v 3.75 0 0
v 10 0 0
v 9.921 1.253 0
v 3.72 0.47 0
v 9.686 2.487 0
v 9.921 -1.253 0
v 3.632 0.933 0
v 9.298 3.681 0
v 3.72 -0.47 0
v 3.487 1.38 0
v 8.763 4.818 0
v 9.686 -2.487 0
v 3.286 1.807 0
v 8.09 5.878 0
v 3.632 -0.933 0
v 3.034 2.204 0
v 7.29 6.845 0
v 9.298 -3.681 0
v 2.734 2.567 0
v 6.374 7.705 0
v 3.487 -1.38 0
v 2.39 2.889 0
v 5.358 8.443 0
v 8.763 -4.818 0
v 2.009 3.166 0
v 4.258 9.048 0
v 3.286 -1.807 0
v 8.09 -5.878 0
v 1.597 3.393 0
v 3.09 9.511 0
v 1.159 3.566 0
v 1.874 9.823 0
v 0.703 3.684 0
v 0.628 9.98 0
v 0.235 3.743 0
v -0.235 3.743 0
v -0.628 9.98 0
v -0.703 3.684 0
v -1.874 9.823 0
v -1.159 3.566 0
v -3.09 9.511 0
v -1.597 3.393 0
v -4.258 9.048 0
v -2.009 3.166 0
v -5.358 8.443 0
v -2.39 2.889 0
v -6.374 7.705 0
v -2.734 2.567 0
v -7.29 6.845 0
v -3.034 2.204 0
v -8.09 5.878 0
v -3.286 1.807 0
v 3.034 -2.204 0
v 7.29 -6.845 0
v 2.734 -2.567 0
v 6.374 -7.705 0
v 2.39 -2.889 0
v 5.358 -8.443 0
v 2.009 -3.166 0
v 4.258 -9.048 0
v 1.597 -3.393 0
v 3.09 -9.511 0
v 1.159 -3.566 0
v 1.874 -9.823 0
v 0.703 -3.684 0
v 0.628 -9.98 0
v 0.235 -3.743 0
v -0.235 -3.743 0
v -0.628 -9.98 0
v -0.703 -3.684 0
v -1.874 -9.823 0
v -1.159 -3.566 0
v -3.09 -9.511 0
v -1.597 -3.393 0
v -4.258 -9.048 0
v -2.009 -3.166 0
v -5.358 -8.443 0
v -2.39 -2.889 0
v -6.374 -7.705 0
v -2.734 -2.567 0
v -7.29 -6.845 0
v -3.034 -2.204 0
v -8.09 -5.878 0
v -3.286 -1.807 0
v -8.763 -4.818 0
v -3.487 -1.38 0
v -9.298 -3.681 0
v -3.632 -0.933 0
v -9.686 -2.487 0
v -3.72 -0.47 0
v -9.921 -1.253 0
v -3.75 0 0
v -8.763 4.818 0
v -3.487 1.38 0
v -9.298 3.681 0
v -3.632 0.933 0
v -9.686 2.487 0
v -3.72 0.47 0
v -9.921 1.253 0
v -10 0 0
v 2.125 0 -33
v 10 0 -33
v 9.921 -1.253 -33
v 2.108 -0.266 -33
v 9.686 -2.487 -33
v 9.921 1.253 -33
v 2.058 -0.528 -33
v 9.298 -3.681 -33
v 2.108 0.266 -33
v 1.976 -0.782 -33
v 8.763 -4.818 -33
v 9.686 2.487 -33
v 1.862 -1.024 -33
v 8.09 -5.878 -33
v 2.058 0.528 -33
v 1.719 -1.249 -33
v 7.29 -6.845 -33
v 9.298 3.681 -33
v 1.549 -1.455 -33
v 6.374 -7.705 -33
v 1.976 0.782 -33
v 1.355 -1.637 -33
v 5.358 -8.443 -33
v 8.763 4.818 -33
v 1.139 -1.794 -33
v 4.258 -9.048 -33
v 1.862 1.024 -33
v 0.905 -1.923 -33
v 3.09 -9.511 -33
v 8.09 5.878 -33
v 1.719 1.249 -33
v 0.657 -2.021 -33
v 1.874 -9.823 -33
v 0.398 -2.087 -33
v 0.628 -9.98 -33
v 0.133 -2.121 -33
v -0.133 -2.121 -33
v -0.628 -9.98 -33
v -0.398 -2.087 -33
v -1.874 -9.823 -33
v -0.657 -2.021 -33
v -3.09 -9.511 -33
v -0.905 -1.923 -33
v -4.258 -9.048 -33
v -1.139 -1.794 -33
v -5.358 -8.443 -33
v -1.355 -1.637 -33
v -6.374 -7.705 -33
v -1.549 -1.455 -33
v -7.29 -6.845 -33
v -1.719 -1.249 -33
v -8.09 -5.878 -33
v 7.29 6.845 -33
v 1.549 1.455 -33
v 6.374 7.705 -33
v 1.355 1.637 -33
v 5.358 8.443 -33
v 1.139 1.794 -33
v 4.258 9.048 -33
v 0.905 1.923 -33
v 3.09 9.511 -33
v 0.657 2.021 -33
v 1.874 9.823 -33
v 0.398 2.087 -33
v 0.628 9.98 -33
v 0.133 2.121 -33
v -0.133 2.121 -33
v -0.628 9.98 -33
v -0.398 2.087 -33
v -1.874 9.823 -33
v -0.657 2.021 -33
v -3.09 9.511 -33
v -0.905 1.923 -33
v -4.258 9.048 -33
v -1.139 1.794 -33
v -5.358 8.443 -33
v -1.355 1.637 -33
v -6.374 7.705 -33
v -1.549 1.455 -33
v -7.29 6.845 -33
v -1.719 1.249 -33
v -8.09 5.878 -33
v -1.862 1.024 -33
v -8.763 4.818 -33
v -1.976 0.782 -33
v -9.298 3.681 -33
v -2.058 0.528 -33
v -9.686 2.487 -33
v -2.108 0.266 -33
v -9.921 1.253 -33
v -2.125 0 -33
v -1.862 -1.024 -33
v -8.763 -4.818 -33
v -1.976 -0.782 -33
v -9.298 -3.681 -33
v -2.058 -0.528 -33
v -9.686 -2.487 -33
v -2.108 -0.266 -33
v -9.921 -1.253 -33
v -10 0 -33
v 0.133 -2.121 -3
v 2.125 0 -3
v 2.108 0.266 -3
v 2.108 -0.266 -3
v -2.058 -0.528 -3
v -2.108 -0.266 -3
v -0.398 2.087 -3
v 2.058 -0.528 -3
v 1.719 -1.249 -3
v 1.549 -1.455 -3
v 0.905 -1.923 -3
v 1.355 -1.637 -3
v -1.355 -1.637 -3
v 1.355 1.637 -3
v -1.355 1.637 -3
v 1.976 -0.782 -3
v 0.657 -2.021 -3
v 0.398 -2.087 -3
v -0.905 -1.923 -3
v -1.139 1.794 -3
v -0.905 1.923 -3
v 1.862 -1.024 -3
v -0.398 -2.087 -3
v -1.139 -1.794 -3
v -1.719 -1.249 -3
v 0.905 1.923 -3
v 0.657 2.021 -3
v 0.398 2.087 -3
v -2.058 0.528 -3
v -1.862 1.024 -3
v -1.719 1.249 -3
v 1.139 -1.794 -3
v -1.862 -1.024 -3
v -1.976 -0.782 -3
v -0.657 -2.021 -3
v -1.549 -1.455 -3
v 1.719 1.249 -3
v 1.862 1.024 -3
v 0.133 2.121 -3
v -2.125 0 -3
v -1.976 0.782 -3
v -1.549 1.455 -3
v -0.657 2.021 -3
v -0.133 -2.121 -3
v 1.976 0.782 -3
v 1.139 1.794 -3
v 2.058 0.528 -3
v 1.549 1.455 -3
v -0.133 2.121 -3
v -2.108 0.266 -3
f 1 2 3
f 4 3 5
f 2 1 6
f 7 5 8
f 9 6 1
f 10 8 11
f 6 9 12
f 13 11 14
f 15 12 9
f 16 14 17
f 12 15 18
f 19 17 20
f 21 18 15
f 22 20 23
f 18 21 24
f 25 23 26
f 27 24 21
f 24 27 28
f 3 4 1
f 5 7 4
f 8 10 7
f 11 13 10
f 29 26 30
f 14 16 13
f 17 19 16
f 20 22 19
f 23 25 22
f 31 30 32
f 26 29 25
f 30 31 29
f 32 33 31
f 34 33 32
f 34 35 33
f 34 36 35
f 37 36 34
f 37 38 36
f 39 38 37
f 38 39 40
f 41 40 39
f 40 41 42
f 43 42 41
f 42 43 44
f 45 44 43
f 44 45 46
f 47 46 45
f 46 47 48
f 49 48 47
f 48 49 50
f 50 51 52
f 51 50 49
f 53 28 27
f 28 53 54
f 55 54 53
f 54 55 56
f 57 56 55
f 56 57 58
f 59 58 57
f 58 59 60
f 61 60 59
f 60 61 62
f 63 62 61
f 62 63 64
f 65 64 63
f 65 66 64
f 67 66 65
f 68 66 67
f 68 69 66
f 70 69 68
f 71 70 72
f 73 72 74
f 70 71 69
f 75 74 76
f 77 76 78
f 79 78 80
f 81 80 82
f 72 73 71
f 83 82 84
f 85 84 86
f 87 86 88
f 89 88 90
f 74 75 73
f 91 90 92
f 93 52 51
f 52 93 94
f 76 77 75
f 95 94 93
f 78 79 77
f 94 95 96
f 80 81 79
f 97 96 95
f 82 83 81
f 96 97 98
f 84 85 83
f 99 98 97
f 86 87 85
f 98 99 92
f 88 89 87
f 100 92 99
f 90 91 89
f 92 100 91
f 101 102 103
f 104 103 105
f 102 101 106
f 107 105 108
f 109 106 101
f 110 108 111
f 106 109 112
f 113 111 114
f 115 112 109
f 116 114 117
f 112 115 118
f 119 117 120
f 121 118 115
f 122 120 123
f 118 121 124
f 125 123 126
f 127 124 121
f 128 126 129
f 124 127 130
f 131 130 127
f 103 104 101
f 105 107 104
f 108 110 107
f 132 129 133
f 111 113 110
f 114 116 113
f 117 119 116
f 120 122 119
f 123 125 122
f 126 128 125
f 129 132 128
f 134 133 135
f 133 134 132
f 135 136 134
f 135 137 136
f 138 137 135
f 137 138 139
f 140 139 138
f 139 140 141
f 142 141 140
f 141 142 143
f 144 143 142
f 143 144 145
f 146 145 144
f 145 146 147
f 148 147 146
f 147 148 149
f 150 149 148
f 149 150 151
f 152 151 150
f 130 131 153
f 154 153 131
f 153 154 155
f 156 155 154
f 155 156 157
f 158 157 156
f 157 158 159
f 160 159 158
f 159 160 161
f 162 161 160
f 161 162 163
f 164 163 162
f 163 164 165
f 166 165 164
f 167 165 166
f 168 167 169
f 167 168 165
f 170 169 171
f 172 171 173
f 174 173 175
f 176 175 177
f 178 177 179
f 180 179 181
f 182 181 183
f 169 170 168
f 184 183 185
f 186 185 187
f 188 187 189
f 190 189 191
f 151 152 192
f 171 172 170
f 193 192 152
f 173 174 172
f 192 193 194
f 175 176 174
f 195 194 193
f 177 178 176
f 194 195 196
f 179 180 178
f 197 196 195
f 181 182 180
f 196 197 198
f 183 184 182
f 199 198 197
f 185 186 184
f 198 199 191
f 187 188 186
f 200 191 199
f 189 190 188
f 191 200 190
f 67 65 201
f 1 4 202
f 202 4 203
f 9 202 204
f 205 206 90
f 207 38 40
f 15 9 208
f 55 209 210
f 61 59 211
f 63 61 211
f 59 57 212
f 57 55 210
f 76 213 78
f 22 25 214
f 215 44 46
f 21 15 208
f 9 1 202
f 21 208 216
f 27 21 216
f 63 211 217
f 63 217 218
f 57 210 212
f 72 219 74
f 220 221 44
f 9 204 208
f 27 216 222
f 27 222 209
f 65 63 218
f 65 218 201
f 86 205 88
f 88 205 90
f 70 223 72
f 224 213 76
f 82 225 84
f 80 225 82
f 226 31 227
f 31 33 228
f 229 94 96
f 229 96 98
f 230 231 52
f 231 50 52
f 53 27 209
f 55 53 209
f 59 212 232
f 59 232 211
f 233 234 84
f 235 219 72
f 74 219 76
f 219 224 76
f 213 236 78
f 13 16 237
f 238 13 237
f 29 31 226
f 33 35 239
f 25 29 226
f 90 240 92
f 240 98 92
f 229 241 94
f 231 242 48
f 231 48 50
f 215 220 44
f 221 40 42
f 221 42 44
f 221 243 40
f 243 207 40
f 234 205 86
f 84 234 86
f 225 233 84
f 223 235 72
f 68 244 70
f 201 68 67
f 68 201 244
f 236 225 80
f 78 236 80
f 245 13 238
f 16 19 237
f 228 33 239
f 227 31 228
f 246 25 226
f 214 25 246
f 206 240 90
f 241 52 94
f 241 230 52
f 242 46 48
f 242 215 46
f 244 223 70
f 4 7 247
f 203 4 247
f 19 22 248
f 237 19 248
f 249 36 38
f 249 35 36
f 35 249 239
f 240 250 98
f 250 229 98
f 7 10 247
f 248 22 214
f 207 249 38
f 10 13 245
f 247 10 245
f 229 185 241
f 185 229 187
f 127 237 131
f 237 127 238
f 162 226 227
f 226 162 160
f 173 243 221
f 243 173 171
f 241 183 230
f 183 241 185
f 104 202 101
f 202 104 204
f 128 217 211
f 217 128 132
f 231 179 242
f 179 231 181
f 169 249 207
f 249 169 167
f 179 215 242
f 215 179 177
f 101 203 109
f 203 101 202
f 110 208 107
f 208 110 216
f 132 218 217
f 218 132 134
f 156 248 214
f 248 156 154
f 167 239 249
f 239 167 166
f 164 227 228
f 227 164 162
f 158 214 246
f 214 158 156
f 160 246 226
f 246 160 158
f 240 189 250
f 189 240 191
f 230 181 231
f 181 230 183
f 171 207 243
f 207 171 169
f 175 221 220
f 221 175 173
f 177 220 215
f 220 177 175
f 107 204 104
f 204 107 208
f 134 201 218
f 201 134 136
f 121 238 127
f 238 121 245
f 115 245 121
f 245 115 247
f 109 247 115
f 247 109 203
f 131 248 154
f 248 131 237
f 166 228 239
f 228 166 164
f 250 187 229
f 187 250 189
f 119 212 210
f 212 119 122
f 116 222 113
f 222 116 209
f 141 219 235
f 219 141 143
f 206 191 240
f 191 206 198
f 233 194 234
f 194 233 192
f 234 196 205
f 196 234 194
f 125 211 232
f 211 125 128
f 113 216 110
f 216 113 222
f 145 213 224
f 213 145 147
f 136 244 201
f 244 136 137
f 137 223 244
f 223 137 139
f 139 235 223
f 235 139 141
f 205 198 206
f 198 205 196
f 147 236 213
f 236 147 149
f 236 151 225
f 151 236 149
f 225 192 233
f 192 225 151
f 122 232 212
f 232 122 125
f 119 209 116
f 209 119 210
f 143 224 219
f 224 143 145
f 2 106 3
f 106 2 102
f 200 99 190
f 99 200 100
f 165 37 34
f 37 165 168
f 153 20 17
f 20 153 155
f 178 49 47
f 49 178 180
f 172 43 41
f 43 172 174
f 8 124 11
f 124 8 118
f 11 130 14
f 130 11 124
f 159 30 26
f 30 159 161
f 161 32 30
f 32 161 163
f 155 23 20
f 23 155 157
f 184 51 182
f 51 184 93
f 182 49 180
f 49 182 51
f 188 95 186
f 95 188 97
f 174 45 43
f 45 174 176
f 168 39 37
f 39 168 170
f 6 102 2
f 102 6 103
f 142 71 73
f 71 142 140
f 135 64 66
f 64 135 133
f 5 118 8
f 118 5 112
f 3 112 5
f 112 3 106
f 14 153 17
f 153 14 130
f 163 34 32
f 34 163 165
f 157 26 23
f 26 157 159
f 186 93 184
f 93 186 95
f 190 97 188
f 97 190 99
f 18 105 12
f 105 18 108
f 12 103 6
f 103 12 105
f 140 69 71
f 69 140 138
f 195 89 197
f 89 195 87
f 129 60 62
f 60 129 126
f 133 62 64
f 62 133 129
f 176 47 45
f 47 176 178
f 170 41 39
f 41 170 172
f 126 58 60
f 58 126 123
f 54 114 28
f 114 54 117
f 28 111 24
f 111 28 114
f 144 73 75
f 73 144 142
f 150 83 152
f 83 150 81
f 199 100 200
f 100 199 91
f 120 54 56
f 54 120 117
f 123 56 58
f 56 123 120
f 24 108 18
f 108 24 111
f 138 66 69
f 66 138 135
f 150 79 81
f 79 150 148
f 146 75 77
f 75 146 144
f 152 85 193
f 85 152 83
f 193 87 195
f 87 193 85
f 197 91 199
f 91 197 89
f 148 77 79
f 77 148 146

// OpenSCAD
$fn = 50;


difference() {
	union() {
		translate(v = [0, 0, -33.0000000000]) {
			cylinder(h = 33, r = 10.0000000000);
		}
		cylinder(h = 0, r = 19.0000000000);
	}
	union() {
		translate(v = [0, 0, 0]) {
			rotate(a = [0, 0, 0]) {
				difference() {
					union() {
						#translate(v = [0, 0, -33.0000000000]) {
							cylinder(h = 33, r = 2.0000000000);
						}
						#translate(v = [0, 0, -3]) {
							cylinder(h = 3, r = 10.0000000000, r1 = 2.1250000000, r2 = 3.7500000000);
						}
						#translate(v = [0, 0, -33.0000000000]) {
							cylinder(h = 33, r = 2.1250000000);
						}
						#translate(v = [0, 0, -33.0000000000]) {
							cylinder(h = 33, r = 2.0000000000);
						}
					}
					union();
				}
			}
		}
	}
}
